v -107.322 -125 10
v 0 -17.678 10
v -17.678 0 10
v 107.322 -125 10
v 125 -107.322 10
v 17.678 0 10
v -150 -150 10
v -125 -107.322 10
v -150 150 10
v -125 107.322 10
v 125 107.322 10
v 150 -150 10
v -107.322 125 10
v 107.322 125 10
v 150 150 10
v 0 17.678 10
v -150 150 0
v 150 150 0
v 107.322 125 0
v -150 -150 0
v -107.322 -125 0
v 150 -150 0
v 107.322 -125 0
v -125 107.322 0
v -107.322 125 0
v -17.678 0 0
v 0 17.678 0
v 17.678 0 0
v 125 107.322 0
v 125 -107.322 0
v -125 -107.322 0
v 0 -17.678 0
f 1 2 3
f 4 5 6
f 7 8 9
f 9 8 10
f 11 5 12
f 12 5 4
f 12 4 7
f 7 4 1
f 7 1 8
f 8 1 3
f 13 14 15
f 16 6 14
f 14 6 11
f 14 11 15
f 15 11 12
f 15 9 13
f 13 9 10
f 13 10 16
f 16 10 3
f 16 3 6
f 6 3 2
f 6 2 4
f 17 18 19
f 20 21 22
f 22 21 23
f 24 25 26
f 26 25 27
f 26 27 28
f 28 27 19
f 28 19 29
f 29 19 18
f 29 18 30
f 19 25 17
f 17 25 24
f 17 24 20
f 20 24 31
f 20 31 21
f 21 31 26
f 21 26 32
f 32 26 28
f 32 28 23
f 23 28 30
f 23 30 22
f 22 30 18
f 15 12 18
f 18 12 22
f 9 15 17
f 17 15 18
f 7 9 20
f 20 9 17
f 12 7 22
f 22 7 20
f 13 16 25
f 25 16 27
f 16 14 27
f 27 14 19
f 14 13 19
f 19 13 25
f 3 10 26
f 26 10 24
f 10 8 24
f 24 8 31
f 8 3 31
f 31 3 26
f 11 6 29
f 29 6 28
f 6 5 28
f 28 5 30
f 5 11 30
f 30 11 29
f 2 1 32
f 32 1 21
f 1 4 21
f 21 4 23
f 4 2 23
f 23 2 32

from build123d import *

# Parameters (mm, degrees)
SKETCH1_W           = 300
SKETCH1_H           = 300
BOSS_EXTRUDE1_DEPTH = 10


with BuildPart() as part:
    # Sketch1 → Boss-Extrude1 (new body)
    with BuildSketch(Plane.XY):
        Rectangle(SKETCH1_W, SKETCH1_H)
        Polygon((-107.32233047, 125), (107.32233047, 125), (0, 17.67766953), align=None, mode=Mode.SUBTRACT)
        Polygon((125, -107.32233047), (125, 107.32233047), (17.67766953, 0), align=None, mode=Mode.SUBTRACT)
        Polygon((-107.32233047, -125), (107.32233047, -125), (0, -17.67766953), align=None, mode=Mode.SUBTRACT)
        Polygon((-125, -107.32233047), (-125, 107.32233047), (-17.67766953, 0), align=None, mode=Mode.SUBTRACT)
    extrude(amount=BOSS_EXTRUDE1_DEPTH)


solid = part.part
